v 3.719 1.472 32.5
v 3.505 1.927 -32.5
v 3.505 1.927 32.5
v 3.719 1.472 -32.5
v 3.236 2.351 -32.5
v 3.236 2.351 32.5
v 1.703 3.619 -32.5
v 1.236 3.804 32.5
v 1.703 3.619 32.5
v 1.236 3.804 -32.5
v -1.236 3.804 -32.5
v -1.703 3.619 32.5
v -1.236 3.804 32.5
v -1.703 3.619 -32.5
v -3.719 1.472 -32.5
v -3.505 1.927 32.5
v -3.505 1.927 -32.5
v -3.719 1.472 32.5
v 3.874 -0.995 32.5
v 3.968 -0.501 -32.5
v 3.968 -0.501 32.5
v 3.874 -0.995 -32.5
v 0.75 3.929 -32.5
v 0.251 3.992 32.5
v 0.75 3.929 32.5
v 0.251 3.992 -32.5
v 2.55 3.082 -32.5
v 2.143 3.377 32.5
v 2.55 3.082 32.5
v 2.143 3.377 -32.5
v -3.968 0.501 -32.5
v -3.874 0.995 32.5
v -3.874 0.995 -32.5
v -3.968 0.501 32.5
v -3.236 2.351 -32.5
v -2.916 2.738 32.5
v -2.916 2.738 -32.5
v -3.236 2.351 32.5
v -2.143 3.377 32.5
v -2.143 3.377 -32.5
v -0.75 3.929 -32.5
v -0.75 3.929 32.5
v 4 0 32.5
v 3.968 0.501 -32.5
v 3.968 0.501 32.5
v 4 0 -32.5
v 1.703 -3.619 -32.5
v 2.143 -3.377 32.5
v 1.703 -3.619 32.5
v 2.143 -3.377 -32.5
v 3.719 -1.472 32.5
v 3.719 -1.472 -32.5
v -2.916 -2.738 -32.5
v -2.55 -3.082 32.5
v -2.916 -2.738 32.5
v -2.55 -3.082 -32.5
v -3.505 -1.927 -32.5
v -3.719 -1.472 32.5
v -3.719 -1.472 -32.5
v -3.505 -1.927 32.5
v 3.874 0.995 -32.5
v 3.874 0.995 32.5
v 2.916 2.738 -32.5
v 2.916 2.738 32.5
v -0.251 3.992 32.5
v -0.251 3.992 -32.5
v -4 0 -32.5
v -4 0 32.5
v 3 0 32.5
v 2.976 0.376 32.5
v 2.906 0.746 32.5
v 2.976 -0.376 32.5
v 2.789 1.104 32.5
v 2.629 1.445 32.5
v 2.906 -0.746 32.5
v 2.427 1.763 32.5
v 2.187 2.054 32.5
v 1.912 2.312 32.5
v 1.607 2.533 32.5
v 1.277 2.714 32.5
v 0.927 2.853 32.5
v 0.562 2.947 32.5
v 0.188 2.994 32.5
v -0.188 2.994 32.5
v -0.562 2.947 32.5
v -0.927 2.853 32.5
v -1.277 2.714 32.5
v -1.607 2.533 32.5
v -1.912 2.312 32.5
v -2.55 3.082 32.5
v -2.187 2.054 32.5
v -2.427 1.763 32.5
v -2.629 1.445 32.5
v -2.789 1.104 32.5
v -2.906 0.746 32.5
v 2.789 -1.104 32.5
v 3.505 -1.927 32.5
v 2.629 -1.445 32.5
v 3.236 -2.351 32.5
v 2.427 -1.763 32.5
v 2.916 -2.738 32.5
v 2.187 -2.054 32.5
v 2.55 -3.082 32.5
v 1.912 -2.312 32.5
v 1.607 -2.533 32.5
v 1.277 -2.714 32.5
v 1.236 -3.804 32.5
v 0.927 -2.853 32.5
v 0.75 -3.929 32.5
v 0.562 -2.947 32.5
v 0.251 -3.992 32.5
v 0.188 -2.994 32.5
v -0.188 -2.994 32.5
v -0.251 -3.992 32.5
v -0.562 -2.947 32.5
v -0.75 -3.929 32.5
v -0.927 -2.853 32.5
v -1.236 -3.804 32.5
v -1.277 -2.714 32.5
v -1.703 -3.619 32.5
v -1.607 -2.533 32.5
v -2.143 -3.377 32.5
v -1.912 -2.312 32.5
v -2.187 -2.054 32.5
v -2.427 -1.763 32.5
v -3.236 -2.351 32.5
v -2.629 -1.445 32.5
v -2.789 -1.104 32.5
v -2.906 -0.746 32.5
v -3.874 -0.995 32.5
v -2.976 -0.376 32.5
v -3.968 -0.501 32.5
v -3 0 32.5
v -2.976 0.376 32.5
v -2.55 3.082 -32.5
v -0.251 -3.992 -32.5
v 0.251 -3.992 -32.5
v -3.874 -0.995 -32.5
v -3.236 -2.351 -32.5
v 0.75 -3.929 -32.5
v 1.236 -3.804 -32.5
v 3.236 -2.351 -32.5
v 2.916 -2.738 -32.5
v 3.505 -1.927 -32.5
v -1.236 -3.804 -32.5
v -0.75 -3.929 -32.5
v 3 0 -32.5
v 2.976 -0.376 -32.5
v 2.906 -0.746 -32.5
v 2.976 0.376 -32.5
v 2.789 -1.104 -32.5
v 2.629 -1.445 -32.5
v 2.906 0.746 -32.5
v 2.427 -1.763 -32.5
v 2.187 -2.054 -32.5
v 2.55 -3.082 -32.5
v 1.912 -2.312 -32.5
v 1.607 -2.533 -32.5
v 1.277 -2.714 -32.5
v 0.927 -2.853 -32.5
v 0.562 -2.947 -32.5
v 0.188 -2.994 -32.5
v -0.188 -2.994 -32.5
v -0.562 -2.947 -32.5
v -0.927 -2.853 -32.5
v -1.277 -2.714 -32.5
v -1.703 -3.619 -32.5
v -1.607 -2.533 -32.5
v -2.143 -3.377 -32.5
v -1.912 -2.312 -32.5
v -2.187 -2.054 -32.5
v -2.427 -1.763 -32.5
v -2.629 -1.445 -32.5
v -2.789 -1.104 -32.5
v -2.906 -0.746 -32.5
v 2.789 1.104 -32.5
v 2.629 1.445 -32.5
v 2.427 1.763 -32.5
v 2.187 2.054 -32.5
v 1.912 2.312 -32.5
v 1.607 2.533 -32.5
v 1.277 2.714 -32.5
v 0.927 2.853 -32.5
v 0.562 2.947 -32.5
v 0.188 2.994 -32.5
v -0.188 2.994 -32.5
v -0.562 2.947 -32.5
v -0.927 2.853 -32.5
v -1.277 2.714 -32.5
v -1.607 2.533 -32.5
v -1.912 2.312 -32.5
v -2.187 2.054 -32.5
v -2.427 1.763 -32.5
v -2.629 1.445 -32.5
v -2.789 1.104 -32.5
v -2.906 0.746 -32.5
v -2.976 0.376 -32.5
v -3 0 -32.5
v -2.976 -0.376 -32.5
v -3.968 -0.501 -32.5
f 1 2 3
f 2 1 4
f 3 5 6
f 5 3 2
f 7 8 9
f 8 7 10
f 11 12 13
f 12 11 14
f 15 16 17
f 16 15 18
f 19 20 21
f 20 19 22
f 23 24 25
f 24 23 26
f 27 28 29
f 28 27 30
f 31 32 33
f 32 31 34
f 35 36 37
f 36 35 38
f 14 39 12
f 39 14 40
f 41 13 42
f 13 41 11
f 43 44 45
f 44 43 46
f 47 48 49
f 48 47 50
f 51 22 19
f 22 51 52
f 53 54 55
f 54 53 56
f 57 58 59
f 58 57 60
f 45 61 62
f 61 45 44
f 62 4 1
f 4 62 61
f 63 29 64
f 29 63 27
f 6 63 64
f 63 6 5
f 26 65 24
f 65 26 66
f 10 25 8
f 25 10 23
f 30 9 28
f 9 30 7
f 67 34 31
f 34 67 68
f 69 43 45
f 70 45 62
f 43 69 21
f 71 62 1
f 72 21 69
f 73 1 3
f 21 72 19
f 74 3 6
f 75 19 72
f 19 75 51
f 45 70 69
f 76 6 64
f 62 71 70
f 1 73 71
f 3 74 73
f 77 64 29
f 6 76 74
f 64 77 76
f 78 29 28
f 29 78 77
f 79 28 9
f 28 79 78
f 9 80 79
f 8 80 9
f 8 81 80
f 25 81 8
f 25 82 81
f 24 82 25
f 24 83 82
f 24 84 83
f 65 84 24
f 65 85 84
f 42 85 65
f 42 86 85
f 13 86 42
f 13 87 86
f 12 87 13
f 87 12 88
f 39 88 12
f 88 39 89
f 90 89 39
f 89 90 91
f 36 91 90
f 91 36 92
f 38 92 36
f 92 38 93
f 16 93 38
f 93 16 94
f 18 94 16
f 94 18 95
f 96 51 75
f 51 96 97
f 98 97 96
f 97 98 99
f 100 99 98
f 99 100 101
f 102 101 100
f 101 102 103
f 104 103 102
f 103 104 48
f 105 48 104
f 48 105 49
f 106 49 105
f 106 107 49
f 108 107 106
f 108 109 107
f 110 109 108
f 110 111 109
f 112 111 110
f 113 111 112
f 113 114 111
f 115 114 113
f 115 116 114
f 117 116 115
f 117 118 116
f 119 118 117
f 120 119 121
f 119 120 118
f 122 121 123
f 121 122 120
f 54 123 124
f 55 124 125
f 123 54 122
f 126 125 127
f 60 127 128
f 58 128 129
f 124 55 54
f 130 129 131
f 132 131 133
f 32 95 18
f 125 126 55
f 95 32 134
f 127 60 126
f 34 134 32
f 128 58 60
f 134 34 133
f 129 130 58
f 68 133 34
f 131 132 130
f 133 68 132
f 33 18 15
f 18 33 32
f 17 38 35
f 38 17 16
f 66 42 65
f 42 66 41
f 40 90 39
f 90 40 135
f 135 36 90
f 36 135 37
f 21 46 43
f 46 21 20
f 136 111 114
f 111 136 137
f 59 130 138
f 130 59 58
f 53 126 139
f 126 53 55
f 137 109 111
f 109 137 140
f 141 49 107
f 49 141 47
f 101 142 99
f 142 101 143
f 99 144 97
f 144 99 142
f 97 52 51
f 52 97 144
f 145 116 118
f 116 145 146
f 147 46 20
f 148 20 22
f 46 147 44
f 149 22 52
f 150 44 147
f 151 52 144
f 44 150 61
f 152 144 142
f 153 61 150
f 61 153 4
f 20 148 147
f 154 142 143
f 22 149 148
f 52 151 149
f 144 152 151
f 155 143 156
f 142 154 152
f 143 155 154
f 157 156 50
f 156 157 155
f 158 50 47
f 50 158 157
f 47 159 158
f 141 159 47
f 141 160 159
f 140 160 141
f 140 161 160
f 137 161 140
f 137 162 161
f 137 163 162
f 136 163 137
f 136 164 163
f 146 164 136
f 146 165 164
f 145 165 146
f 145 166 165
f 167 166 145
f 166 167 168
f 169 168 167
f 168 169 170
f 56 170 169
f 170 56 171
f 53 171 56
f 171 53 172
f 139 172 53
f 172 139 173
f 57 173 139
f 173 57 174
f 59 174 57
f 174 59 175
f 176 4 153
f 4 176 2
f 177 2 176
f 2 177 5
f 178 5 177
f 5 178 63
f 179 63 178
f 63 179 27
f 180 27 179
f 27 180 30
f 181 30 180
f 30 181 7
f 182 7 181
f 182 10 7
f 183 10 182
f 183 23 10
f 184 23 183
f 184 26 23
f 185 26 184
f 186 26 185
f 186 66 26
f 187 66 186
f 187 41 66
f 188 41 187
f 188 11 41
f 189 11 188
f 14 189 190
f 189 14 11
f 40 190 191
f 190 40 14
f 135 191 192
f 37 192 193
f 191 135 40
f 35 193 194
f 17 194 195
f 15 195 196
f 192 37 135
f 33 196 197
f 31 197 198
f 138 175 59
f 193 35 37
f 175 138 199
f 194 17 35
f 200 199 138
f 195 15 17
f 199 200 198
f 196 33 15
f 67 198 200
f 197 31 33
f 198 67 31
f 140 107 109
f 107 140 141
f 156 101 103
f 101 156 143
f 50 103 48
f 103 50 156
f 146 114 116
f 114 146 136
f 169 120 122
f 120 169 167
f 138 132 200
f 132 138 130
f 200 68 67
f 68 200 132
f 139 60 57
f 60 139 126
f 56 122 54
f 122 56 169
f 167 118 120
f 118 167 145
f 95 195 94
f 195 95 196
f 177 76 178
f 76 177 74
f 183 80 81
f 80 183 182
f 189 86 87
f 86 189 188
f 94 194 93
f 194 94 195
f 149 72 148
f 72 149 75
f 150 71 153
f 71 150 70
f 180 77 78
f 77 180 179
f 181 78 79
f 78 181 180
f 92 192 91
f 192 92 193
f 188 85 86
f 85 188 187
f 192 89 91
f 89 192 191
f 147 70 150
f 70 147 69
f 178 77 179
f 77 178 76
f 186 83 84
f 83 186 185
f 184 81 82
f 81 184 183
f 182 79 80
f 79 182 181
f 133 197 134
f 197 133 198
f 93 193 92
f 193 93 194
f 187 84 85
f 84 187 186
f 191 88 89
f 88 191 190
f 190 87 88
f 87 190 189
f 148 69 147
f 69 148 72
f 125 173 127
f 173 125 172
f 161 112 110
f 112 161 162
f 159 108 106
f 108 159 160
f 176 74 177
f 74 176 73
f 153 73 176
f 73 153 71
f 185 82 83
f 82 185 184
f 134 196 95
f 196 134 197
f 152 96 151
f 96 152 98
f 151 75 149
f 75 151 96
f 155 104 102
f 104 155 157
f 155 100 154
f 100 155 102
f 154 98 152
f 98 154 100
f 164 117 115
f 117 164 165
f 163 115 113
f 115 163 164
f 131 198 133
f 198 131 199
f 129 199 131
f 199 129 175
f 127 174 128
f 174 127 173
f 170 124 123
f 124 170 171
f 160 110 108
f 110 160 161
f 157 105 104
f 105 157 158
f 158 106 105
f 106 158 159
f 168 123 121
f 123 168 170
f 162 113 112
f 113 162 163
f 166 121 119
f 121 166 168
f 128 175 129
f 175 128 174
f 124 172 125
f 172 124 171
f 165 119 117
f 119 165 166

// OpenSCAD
$fn = 50;


difference() {
	union() {
		translate(v = [0, 0, -32.5000000000]) {
			cylinder(h = 65, r = 4.0000000000);
		}
	}
	union() {
		translate(v = [0, 0, -100.0000000000]) {
			cylinder(h = 200, r = 3);
		}
	}
}
